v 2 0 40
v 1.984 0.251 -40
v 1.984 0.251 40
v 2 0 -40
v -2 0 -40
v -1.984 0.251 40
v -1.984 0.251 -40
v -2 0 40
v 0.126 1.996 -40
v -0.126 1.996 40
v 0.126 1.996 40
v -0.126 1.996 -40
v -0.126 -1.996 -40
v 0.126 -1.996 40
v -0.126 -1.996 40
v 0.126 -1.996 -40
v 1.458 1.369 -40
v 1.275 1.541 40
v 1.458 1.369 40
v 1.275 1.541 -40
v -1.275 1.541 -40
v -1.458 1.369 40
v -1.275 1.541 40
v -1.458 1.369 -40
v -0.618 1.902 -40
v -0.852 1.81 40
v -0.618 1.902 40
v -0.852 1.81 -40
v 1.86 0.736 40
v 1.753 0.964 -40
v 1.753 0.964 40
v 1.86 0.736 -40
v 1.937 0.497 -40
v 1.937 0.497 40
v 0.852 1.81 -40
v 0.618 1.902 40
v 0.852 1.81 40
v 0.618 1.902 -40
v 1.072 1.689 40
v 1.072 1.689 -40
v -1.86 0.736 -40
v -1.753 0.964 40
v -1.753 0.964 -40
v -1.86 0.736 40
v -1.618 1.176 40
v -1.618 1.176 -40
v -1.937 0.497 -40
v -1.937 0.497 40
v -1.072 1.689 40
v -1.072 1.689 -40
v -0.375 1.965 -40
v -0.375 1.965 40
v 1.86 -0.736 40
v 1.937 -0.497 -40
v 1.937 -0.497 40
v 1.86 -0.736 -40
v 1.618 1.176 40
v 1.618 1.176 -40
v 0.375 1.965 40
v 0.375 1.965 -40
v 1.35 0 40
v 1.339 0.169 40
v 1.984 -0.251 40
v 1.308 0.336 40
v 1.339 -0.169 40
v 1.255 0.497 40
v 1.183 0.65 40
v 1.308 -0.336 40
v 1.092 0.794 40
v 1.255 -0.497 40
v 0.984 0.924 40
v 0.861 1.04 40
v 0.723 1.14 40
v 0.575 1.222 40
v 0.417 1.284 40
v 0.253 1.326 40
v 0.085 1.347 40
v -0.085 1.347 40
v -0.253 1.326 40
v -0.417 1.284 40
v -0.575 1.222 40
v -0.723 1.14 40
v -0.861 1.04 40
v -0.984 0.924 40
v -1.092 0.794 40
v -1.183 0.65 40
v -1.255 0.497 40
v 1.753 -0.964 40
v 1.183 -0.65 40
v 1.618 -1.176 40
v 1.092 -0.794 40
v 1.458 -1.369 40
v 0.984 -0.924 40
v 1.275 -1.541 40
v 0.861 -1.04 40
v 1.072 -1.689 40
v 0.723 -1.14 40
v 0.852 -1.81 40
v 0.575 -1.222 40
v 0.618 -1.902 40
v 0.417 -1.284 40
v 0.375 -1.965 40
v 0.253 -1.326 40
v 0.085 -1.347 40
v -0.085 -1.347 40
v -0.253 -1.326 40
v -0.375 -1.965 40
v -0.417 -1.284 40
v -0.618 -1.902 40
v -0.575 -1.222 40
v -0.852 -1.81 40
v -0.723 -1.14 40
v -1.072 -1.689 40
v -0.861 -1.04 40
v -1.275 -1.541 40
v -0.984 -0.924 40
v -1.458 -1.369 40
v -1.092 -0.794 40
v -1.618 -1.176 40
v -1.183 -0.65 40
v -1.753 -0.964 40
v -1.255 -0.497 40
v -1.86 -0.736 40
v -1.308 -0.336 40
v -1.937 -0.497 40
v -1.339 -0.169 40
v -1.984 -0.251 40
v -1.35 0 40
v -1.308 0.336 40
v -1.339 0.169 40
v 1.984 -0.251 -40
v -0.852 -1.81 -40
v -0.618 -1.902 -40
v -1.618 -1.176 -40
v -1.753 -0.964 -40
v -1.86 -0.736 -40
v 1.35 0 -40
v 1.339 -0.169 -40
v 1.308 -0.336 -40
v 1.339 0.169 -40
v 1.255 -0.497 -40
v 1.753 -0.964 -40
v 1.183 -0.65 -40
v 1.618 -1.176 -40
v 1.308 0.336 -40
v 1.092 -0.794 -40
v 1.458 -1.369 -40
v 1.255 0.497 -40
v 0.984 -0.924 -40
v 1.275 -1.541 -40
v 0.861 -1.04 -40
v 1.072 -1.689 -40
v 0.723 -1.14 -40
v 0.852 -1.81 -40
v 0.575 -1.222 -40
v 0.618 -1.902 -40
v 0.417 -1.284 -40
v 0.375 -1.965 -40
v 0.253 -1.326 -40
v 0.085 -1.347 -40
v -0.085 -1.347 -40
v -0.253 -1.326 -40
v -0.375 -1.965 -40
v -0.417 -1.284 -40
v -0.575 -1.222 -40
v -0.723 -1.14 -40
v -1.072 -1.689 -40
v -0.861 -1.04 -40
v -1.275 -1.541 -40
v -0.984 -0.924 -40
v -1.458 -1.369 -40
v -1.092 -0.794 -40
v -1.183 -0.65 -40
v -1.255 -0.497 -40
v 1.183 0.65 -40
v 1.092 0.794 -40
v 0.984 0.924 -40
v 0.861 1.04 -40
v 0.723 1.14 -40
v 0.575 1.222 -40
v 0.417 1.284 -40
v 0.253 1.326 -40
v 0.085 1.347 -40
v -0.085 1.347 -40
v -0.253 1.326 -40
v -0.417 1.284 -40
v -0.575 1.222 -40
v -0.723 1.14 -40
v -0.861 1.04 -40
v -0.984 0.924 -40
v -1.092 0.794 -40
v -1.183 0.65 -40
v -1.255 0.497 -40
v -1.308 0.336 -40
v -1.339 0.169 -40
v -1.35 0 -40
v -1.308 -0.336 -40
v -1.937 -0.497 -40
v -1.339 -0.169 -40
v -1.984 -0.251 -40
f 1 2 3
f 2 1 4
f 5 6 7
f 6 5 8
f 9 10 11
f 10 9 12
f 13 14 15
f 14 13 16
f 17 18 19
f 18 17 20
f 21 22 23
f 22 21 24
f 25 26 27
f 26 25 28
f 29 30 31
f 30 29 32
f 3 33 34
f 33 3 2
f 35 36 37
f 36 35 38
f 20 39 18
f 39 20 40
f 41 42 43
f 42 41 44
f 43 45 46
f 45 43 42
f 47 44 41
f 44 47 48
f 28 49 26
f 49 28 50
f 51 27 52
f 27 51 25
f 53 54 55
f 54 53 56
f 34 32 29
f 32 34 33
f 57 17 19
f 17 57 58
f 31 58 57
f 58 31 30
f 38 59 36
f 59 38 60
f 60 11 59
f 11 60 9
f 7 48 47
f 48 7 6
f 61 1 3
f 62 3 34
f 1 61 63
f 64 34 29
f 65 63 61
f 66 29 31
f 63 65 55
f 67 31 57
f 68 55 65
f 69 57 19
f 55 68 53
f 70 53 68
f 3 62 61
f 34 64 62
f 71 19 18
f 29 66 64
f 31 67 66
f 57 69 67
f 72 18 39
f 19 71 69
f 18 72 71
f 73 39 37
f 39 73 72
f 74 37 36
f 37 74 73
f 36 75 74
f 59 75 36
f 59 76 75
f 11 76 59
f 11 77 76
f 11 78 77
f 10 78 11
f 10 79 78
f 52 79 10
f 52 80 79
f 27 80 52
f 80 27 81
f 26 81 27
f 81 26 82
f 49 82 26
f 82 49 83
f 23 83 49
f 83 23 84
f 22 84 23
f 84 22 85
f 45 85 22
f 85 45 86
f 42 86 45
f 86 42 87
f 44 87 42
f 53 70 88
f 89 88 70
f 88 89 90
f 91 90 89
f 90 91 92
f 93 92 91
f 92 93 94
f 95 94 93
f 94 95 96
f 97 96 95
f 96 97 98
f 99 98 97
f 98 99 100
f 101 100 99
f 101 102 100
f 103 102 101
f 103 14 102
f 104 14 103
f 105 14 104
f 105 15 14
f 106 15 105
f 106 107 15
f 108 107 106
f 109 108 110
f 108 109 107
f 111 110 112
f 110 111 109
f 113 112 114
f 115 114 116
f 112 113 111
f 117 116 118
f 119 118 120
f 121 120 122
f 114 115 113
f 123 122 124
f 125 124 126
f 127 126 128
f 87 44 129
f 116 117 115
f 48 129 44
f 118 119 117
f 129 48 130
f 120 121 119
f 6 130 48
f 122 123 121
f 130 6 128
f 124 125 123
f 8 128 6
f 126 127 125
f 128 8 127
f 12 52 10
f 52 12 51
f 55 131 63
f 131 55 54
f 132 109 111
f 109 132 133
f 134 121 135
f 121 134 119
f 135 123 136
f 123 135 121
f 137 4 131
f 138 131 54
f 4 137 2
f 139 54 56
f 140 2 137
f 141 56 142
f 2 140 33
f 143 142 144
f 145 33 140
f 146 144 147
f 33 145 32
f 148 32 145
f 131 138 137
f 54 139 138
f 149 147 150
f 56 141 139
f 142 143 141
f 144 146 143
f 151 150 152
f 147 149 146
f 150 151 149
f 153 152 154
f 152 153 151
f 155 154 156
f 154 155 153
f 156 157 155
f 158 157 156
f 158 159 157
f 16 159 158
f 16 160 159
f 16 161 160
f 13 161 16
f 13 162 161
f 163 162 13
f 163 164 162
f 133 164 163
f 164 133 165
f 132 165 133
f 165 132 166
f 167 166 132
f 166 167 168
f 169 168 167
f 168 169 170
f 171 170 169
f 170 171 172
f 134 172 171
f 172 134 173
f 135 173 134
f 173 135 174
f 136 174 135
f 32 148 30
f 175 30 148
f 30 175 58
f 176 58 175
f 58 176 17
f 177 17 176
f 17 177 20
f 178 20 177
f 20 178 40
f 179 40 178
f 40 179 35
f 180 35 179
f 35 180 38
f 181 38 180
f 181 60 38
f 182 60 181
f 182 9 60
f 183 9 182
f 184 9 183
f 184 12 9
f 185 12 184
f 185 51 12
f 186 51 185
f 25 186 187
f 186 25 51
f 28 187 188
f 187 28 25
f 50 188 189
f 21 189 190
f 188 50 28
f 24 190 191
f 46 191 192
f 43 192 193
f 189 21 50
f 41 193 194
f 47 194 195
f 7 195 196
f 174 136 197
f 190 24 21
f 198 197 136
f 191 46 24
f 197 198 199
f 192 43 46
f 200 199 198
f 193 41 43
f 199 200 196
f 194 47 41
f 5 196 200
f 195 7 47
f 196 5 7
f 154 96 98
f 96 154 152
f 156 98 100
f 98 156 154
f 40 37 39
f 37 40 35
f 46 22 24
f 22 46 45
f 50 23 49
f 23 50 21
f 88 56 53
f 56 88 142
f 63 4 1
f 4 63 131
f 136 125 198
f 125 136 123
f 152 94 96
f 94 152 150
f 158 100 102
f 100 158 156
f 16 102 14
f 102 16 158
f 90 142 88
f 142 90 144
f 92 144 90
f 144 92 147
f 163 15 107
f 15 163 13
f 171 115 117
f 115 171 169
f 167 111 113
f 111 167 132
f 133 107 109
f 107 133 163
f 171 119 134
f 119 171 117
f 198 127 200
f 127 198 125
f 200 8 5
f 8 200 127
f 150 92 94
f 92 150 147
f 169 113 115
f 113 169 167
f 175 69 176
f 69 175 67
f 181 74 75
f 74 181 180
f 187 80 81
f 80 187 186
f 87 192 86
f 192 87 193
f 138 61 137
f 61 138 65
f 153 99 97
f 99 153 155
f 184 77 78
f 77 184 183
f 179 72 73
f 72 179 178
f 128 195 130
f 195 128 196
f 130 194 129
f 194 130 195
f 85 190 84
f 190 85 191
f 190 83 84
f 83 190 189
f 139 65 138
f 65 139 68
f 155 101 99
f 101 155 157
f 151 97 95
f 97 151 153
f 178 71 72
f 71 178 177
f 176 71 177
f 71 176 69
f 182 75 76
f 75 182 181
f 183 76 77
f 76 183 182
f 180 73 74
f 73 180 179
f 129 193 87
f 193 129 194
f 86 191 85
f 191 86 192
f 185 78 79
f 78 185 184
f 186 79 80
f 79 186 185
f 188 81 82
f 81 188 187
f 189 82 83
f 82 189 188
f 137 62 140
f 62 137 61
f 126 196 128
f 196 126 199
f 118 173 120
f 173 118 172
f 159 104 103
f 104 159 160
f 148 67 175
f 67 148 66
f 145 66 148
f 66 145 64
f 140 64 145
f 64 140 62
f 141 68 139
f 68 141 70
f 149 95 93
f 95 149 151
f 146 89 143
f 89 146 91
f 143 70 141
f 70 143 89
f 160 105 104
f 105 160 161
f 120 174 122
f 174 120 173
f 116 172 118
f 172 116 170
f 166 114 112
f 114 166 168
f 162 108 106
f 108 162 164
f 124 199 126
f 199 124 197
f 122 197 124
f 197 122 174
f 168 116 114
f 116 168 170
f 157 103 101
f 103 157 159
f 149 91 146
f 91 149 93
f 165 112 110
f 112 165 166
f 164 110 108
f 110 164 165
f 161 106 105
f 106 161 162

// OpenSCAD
$fn = 50;


difference() {
	union() {
		translate(v = [0, 0, -40.0000000000]) {
			cylinder(h = 80, r = 2.0000000000);
		}
	}
	union() {
		translate(v = [0, 0, -100.0000000000]) {
			cylinder(h = 200, r = 1.3500000000);
		}
	}
}
